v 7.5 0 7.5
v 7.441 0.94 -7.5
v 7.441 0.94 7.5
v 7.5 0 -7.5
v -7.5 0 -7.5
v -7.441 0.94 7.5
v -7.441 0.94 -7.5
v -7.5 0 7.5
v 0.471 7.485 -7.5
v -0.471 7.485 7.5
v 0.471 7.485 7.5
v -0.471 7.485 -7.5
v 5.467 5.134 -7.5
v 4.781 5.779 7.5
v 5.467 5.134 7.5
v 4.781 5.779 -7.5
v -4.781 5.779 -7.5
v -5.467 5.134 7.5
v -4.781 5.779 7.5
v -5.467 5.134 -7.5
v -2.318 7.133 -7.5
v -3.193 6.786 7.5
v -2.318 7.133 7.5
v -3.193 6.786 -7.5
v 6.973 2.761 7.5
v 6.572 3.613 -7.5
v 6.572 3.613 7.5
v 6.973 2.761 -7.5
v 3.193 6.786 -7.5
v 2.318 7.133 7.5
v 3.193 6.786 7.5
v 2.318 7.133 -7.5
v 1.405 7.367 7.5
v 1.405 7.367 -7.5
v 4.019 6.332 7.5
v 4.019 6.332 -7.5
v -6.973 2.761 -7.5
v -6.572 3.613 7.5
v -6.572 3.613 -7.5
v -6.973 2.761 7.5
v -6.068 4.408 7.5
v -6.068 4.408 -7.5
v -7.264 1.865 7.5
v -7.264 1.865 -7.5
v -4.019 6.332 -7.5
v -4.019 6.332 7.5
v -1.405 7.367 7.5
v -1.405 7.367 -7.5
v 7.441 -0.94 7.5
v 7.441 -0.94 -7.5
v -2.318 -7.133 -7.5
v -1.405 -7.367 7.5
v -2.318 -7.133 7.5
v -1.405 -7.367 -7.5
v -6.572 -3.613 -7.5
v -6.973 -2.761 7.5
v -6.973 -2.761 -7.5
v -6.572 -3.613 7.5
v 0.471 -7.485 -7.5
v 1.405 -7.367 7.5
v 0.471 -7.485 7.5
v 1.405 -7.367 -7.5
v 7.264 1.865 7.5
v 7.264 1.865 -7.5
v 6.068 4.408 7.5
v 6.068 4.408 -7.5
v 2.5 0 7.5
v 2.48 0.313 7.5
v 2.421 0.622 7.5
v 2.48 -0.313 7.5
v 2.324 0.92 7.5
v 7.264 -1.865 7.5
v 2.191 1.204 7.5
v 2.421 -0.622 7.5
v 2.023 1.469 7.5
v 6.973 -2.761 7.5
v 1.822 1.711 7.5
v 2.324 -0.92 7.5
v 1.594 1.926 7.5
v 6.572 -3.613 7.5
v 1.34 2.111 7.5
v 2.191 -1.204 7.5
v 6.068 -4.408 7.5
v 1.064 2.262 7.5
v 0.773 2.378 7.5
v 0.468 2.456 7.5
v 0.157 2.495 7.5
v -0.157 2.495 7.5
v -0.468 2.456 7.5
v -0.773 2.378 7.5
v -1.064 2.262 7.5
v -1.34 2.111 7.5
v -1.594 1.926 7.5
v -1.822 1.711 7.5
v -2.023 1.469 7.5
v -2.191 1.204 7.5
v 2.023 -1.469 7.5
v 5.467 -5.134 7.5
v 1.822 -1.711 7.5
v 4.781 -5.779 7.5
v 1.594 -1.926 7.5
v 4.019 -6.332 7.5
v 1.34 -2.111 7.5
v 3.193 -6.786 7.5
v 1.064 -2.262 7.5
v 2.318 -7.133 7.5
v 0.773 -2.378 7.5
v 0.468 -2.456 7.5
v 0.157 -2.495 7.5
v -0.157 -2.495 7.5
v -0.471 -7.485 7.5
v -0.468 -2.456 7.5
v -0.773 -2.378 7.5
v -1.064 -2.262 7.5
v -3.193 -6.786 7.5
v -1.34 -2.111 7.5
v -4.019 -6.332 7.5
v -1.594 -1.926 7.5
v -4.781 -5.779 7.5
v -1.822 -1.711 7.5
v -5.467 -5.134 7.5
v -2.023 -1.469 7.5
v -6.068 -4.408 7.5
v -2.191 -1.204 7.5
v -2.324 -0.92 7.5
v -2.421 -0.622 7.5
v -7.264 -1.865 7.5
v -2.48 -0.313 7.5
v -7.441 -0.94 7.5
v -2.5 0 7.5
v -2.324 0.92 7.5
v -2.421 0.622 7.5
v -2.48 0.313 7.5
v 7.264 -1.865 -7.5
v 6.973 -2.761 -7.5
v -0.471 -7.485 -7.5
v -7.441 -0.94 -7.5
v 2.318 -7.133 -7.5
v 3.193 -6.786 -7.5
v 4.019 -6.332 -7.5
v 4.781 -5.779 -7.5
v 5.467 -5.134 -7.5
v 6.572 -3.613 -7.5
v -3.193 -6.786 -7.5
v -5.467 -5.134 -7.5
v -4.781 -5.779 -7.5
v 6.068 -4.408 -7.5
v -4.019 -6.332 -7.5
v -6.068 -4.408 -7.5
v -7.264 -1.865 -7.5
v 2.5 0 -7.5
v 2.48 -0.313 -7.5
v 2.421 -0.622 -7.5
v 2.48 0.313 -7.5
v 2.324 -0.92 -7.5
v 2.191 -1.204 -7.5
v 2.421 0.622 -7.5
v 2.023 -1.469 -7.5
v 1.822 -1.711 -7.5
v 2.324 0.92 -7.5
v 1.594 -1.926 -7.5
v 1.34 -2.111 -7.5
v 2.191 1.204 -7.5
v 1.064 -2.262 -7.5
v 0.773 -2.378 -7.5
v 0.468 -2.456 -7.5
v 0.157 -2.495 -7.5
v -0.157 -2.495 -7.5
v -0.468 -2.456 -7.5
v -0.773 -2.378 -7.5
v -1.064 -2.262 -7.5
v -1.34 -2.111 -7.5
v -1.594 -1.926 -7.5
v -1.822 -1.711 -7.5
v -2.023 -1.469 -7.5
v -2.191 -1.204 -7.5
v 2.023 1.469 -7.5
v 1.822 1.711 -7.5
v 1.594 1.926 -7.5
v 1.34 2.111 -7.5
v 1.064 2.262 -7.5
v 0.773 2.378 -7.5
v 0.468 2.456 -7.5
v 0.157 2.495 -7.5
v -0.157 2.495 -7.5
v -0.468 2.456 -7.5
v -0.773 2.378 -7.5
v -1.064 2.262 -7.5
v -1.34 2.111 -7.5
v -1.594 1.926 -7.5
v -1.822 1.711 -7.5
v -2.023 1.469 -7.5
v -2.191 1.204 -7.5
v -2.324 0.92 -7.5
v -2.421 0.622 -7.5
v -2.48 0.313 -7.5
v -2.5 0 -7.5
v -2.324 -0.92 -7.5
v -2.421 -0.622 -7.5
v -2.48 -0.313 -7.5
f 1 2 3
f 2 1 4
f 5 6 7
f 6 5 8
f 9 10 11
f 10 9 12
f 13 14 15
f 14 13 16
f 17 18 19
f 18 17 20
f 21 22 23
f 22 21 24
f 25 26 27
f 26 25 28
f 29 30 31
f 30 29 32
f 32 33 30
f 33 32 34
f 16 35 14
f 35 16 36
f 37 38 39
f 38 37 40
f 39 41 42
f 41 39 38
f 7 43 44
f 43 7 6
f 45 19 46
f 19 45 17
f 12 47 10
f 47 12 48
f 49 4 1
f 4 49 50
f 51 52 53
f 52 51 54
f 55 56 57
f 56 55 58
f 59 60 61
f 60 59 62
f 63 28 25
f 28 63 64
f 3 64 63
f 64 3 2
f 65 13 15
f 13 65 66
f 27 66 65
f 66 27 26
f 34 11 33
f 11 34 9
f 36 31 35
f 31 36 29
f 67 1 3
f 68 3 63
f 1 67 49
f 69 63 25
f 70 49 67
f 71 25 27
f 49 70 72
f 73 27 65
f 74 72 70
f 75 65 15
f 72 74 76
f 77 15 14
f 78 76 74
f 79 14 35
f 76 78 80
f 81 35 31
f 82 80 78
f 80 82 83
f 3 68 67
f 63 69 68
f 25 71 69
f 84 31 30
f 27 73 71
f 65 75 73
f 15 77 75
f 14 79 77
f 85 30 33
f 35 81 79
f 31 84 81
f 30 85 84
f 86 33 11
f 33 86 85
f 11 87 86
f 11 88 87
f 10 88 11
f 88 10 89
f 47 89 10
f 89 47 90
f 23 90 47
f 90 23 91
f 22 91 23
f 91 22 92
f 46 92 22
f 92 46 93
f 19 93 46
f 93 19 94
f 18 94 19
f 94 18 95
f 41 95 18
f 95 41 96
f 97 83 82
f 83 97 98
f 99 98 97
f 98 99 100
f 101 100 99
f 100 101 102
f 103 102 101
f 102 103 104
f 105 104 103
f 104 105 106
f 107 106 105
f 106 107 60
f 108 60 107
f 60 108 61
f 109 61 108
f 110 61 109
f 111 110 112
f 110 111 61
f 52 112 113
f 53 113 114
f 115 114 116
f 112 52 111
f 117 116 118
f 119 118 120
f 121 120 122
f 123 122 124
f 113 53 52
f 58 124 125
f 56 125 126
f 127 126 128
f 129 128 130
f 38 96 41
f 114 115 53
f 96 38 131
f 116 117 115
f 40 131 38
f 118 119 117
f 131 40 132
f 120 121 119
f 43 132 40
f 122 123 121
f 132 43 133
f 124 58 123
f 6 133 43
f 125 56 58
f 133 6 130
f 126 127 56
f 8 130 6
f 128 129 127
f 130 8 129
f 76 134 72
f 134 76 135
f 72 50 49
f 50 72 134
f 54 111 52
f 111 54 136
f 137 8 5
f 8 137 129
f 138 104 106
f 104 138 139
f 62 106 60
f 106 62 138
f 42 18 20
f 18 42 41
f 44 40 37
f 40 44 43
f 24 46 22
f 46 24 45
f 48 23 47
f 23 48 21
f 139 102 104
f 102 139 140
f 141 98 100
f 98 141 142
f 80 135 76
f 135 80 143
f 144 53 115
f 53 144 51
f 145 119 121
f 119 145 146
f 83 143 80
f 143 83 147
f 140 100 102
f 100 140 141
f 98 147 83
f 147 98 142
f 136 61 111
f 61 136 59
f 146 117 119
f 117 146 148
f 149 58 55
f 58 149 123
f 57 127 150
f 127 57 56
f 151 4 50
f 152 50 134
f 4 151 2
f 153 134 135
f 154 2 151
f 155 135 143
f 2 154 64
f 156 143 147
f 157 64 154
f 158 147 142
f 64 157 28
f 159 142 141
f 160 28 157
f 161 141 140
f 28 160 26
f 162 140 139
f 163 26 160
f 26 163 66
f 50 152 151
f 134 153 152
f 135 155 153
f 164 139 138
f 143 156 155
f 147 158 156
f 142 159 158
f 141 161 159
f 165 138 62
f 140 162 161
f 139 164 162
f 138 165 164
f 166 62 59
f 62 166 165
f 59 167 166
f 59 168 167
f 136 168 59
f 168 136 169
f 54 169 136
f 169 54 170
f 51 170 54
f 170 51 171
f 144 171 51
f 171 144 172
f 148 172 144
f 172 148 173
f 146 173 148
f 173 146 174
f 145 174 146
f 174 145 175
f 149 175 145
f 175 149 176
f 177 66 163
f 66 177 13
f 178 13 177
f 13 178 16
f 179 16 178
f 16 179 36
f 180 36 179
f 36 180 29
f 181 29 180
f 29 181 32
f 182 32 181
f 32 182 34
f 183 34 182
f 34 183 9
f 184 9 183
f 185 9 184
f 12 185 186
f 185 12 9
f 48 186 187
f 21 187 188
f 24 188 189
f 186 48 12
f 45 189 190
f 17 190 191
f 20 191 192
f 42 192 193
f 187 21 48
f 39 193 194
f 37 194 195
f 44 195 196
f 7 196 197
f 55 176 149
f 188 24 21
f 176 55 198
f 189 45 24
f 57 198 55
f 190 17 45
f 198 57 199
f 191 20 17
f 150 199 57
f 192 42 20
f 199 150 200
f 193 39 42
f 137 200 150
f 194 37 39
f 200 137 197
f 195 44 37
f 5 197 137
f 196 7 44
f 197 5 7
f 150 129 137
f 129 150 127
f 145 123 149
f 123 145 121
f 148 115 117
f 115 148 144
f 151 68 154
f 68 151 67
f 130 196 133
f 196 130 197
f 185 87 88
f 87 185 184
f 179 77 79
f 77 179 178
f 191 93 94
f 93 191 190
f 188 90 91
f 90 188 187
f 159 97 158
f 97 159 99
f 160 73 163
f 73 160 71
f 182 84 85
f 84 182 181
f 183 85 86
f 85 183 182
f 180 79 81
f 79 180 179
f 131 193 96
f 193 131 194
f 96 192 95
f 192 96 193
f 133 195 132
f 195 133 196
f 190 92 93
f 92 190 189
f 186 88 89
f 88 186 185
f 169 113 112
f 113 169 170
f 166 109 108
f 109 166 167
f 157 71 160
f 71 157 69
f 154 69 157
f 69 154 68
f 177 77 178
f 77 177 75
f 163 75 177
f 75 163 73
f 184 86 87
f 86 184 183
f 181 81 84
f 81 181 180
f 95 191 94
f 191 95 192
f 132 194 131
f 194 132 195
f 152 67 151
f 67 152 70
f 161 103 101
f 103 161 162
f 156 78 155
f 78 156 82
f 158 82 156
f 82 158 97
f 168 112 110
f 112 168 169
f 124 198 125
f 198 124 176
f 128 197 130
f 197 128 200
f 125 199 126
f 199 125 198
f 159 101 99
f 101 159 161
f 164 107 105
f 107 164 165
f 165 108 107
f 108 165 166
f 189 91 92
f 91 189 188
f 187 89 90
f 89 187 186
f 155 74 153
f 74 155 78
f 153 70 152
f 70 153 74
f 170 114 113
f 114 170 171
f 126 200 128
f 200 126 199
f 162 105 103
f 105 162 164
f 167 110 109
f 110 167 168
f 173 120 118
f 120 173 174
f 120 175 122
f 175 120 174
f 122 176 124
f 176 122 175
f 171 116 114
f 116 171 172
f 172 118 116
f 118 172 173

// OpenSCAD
$fn = 50;


difference() {
	union() {
		translate(v = [0, 0, -7.5000000000]) {
			cylinder(h = 15, r = 7.5000000000);
		}
	}
	union() {
		translate(v = [0, 0, -100.0000000000]) {
			cylinder(h = 200, r = 2.5000000000);
		}
	}
}
